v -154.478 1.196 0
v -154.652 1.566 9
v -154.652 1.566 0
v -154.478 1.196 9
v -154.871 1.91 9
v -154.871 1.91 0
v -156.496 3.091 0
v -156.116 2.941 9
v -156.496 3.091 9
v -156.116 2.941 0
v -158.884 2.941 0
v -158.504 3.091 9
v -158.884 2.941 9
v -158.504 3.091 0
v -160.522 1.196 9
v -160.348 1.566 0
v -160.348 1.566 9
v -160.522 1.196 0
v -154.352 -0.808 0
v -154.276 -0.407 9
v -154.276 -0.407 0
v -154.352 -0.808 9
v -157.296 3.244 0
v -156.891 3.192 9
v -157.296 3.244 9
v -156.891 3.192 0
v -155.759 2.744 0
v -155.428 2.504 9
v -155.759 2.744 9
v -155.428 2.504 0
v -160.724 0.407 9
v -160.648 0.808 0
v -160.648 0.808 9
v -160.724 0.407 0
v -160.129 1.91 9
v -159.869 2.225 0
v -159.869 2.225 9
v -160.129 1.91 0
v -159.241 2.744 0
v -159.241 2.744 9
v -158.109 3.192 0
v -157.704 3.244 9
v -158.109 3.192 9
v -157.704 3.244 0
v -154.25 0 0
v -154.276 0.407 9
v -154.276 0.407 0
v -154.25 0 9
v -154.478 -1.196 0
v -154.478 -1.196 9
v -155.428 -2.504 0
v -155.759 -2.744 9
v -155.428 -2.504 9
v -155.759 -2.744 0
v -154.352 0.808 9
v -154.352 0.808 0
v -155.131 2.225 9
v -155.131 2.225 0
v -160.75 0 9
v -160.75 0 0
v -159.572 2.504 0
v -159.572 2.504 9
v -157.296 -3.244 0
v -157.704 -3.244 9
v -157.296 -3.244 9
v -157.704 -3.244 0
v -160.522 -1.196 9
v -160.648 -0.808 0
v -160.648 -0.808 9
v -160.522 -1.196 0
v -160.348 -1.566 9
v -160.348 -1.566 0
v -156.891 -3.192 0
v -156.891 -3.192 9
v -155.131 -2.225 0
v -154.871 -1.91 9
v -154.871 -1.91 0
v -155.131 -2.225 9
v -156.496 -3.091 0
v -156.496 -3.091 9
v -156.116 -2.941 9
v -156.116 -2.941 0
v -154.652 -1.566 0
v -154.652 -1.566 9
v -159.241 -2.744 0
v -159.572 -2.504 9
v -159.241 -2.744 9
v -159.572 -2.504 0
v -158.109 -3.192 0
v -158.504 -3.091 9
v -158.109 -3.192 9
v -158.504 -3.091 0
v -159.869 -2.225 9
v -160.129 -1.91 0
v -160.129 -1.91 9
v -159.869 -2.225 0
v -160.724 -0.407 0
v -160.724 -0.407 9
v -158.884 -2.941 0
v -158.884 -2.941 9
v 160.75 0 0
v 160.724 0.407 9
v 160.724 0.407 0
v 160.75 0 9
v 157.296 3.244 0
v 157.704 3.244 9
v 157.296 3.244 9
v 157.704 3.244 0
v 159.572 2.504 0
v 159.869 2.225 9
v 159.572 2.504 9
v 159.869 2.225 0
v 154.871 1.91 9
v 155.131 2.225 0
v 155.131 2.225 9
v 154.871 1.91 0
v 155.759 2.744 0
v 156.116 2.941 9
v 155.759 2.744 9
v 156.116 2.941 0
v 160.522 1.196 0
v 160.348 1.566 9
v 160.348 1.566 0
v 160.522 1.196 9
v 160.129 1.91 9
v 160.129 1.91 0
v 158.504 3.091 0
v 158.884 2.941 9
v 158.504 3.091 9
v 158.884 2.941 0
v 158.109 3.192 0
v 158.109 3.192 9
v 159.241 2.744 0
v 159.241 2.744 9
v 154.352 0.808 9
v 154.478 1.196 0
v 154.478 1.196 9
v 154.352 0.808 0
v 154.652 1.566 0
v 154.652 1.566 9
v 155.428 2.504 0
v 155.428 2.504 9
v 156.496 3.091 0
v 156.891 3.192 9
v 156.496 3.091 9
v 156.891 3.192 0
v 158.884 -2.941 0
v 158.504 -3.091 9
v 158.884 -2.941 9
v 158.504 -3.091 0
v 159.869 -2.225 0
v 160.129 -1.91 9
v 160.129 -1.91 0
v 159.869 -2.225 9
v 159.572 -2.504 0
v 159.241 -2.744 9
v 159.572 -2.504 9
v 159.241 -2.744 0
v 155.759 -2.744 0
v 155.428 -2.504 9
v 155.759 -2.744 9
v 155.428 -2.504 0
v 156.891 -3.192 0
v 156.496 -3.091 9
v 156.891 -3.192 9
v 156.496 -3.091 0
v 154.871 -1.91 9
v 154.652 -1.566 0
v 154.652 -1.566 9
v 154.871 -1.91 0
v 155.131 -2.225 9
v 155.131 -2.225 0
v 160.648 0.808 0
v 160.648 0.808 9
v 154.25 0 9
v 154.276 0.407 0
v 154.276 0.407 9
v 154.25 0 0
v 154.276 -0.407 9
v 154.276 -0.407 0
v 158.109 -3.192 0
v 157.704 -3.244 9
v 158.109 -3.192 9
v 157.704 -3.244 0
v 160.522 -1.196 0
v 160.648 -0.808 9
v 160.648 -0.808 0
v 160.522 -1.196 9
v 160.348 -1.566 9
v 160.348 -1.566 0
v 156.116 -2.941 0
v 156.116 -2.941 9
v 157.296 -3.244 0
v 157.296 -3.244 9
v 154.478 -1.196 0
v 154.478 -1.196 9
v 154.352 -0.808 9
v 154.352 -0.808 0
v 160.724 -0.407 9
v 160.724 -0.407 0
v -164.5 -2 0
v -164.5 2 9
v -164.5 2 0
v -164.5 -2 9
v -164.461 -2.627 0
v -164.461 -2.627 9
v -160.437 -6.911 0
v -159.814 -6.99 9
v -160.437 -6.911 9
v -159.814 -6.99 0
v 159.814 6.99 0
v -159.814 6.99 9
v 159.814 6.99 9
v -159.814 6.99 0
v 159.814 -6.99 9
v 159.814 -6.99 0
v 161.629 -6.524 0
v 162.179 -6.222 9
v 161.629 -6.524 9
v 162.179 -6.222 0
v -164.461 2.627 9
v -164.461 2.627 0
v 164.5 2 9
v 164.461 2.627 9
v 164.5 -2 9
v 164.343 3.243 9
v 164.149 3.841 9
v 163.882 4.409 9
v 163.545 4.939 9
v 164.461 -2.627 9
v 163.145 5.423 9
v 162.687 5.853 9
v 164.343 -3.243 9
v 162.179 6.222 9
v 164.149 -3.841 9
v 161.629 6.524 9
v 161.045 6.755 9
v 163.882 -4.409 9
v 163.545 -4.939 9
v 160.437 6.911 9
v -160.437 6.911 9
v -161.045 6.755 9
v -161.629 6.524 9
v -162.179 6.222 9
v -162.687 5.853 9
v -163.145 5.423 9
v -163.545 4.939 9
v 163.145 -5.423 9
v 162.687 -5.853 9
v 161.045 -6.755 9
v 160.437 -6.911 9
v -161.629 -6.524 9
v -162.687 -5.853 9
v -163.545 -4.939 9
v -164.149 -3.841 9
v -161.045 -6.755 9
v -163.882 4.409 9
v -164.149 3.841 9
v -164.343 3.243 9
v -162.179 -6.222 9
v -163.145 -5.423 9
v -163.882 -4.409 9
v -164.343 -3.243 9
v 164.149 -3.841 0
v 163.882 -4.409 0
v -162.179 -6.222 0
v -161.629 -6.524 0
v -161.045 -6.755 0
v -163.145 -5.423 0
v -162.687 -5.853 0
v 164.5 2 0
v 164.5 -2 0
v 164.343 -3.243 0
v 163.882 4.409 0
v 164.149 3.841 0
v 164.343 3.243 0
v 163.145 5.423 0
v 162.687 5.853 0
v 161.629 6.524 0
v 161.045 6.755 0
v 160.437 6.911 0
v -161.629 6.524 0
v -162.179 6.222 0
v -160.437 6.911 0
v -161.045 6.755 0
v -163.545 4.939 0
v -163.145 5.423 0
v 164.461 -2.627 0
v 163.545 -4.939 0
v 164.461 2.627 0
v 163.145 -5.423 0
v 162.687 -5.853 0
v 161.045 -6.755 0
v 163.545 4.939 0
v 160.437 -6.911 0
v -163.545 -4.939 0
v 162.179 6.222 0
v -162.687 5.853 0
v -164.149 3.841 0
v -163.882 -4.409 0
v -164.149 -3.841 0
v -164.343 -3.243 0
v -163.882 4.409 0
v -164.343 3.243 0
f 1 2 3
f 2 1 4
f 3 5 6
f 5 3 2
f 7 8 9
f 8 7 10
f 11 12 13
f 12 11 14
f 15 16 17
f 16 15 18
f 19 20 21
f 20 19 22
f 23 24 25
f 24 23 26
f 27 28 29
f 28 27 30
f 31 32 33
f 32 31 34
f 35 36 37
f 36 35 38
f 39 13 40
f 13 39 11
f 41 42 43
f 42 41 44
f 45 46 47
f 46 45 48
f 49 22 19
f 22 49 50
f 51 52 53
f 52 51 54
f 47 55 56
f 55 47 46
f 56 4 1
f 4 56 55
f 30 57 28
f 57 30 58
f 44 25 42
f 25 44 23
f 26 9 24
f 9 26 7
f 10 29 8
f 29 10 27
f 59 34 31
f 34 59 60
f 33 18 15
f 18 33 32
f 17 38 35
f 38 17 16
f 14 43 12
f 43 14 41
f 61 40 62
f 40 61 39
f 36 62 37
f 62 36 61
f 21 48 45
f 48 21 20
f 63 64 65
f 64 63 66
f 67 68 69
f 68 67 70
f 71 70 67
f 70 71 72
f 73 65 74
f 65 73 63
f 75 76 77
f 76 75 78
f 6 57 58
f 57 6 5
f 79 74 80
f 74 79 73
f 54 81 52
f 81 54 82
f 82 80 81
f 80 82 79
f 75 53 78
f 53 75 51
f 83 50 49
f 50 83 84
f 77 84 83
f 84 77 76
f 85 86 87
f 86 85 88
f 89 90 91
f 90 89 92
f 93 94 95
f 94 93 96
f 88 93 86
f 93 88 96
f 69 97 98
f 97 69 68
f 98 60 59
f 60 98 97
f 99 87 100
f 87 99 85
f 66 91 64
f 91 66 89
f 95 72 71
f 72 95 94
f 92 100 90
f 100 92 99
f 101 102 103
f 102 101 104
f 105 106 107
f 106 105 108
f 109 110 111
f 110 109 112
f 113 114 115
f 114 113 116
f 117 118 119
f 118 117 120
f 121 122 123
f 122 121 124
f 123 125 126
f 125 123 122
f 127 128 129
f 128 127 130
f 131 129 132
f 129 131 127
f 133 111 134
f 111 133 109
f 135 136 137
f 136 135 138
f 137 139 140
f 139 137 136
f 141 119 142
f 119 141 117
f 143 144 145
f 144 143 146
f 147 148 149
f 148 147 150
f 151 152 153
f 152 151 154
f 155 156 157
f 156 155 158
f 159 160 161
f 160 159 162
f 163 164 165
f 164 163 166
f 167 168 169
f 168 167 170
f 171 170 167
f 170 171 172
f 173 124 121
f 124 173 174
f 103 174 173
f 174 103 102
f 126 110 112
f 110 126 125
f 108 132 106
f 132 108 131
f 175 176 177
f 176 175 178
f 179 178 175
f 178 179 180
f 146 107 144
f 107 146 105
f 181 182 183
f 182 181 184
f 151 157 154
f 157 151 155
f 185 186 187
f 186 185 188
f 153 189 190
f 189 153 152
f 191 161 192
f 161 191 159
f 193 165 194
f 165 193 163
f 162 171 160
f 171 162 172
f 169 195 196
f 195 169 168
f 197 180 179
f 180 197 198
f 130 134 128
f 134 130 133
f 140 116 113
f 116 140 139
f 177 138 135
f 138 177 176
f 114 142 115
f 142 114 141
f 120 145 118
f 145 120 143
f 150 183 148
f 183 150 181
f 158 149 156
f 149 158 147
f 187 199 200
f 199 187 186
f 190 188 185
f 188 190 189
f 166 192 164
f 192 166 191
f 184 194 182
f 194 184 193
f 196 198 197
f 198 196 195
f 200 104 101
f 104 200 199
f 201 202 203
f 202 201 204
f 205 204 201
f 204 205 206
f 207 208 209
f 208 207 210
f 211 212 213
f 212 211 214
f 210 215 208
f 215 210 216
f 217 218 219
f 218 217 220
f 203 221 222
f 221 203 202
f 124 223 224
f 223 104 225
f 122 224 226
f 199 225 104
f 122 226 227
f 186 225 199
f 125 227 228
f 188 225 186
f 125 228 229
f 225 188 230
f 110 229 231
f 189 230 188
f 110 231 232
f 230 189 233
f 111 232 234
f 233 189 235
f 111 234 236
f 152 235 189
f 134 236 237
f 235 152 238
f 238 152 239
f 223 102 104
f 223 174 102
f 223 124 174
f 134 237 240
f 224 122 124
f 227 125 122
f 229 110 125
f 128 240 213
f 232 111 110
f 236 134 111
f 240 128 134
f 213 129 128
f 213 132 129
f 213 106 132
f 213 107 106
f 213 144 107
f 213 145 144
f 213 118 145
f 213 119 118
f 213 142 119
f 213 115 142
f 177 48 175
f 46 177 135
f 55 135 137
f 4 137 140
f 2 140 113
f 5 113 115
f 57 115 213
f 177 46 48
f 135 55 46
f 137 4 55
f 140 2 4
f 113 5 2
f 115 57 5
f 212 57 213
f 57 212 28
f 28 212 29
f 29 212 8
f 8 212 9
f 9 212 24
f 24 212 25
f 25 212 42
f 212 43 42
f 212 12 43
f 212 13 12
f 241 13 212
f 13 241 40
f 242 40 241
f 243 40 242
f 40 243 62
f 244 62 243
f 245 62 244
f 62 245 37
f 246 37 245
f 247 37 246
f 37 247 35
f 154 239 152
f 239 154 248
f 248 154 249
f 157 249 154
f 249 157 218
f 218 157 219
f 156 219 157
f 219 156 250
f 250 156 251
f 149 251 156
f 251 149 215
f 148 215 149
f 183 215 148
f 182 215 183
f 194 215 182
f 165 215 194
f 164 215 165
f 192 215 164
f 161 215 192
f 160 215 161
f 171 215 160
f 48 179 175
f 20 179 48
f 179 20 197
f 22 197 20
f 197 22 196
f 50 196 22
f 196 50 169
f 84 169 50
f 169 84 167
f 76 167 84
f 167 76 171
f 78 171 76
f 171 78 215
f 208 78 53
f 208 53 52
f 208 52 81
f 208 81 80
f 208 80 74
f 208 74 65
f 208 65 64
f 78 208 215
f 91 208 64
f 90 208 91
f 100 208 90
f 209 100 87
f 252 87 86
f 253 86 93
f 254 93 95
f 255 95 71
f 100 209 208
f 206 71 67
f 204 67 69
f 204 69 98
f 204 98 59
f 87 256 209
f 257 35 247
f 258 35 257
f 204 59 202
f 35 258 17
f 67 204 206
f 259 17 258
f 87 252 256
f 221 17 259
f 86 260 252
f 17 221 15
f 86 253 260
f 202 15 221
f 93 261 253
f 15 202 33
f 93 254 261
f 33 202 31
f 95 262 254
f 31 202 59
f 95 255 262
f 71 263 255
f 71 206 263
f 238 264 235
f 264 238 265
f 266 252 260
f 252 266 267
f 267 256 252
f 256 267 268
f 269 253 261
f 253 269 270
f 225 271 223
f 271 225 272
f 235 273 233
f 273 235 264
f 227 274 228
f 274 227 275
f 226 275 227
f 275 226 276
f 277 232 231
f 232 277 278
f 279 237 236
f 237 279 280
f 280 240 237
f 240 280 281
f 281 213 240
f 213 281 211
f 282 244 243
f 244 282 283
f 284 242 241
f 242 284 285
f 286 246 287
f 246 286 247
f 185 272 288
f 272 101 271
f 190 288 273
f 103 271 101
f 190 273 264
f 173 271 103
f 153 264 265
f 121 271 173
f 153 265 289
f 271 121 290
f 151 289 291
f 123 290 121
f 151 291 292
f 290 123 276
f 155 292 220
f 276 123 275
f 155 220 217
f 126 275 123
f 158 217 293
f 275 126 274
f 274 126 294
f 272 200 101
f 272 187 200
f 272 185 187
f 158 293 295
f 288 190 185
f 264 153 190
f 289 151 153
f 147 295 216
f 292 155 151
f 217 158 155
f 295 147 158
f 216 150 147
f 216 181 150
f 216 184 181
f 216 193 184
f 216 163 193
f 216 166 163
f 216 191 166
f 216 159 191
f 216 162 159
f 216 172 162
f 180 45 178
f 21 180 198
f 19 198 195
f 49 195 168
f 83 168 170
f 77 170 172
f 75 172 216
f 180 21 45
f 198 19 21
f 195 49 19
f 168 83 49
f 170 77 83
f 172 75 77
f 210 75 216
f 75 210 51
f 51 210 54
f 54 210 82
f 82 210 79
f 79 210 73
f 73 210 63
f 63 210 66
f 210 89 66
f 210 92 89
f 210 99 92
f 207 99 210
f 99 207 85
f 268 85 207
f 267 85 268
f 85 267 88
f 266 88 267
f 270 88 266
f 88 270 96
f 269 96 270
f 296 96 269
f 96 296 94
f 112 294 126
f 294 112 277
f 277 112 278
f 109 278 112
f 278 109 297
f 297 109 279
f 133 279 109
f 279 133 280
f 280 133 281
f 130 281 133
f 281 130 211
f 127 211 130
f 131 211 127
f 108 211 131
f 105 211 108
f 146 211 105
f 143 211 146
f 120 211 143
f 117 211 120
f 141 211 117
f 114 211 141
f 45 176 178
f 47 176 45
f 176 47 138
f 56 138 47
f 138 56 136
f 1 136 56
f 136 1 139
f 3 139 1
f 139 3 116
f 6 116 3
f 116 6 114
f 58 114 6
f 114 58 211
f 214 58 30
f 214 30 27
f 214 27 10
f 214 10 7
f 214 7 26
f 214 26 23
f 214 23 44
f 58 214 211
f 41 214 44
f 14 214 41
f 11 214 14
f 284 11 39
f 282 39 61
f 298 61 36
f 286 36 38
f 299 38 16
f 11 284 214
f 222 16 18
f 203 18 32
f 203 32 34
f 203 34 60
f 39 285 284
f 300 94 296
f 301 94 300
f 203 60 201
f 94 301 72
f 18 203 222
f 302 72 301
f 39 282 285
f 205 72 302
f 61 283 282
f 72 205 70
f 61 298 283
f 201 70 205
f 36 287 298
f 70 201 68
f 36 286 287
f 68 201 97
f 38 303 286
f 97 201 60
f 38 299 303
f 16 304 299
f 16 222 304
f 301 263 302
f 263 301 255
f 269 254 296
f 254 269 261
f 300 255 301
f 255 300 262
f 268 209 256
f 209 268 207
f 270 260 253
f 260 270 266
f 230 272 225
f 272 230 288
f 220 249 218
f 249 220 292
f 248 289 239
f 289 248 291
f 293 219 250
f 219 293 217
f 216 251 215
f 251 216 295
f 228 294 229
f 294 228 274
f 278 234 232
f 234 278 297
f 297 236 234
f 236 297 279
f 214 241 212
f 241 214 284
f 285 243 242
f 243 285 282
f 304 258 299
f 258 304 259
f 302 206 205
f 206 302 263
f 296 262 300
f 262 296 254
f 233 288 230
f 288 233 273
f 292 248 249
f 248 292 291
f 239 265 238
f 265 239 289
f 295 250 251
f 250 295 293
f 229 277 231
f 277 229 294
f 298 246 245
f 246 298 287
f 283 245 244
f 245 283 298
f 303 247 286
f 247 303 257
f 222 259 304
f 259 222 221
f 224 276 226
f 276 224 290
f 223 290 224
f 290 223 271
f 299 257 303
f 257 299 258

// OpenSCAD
$fn = 50;


difference() {
	union() {
		hull() {
			translate(v = [-159.5000000000, 2.0000000000, 0]) {
				cylinder(h = 9, r = 5);
			}
			translate(v = [159.5000000000, 2.0000000000, 0]) {
				cylinder(h = 9, r = 5);
			}
			translate(v = [-159.5000000000, -2.0000000000, 0]) {
				cylinder(h = 9, r = 5);
			}
			translate(v = [159.5000000000, -2.0000000000, 0]) {
				cylinder(h = 9, r = 5);
			}
		}
	}
	union() {
		translate(v = [-157.5000000000, 0.0000000000, -100.0000000000]) {
			cylinder(h = 200, r = 3.2500000000);
		}
		translate(v = [-157.5000000000, 0.0000000000, -100.0000000000]) {
			cylinder(h = 200, r = 3.2500000000);
		}
		translate(v = [157.5000000000, 0.0000000000, -100.0000000000]) {
			cylinder(h = 200, r = 3.2500000000);
		}
		translate(v = [157.5000000000, 0.0000000000, -100.0000000000]) {
			cylinder(h = 200, r = 3.2500000000);
		}
	}
}
